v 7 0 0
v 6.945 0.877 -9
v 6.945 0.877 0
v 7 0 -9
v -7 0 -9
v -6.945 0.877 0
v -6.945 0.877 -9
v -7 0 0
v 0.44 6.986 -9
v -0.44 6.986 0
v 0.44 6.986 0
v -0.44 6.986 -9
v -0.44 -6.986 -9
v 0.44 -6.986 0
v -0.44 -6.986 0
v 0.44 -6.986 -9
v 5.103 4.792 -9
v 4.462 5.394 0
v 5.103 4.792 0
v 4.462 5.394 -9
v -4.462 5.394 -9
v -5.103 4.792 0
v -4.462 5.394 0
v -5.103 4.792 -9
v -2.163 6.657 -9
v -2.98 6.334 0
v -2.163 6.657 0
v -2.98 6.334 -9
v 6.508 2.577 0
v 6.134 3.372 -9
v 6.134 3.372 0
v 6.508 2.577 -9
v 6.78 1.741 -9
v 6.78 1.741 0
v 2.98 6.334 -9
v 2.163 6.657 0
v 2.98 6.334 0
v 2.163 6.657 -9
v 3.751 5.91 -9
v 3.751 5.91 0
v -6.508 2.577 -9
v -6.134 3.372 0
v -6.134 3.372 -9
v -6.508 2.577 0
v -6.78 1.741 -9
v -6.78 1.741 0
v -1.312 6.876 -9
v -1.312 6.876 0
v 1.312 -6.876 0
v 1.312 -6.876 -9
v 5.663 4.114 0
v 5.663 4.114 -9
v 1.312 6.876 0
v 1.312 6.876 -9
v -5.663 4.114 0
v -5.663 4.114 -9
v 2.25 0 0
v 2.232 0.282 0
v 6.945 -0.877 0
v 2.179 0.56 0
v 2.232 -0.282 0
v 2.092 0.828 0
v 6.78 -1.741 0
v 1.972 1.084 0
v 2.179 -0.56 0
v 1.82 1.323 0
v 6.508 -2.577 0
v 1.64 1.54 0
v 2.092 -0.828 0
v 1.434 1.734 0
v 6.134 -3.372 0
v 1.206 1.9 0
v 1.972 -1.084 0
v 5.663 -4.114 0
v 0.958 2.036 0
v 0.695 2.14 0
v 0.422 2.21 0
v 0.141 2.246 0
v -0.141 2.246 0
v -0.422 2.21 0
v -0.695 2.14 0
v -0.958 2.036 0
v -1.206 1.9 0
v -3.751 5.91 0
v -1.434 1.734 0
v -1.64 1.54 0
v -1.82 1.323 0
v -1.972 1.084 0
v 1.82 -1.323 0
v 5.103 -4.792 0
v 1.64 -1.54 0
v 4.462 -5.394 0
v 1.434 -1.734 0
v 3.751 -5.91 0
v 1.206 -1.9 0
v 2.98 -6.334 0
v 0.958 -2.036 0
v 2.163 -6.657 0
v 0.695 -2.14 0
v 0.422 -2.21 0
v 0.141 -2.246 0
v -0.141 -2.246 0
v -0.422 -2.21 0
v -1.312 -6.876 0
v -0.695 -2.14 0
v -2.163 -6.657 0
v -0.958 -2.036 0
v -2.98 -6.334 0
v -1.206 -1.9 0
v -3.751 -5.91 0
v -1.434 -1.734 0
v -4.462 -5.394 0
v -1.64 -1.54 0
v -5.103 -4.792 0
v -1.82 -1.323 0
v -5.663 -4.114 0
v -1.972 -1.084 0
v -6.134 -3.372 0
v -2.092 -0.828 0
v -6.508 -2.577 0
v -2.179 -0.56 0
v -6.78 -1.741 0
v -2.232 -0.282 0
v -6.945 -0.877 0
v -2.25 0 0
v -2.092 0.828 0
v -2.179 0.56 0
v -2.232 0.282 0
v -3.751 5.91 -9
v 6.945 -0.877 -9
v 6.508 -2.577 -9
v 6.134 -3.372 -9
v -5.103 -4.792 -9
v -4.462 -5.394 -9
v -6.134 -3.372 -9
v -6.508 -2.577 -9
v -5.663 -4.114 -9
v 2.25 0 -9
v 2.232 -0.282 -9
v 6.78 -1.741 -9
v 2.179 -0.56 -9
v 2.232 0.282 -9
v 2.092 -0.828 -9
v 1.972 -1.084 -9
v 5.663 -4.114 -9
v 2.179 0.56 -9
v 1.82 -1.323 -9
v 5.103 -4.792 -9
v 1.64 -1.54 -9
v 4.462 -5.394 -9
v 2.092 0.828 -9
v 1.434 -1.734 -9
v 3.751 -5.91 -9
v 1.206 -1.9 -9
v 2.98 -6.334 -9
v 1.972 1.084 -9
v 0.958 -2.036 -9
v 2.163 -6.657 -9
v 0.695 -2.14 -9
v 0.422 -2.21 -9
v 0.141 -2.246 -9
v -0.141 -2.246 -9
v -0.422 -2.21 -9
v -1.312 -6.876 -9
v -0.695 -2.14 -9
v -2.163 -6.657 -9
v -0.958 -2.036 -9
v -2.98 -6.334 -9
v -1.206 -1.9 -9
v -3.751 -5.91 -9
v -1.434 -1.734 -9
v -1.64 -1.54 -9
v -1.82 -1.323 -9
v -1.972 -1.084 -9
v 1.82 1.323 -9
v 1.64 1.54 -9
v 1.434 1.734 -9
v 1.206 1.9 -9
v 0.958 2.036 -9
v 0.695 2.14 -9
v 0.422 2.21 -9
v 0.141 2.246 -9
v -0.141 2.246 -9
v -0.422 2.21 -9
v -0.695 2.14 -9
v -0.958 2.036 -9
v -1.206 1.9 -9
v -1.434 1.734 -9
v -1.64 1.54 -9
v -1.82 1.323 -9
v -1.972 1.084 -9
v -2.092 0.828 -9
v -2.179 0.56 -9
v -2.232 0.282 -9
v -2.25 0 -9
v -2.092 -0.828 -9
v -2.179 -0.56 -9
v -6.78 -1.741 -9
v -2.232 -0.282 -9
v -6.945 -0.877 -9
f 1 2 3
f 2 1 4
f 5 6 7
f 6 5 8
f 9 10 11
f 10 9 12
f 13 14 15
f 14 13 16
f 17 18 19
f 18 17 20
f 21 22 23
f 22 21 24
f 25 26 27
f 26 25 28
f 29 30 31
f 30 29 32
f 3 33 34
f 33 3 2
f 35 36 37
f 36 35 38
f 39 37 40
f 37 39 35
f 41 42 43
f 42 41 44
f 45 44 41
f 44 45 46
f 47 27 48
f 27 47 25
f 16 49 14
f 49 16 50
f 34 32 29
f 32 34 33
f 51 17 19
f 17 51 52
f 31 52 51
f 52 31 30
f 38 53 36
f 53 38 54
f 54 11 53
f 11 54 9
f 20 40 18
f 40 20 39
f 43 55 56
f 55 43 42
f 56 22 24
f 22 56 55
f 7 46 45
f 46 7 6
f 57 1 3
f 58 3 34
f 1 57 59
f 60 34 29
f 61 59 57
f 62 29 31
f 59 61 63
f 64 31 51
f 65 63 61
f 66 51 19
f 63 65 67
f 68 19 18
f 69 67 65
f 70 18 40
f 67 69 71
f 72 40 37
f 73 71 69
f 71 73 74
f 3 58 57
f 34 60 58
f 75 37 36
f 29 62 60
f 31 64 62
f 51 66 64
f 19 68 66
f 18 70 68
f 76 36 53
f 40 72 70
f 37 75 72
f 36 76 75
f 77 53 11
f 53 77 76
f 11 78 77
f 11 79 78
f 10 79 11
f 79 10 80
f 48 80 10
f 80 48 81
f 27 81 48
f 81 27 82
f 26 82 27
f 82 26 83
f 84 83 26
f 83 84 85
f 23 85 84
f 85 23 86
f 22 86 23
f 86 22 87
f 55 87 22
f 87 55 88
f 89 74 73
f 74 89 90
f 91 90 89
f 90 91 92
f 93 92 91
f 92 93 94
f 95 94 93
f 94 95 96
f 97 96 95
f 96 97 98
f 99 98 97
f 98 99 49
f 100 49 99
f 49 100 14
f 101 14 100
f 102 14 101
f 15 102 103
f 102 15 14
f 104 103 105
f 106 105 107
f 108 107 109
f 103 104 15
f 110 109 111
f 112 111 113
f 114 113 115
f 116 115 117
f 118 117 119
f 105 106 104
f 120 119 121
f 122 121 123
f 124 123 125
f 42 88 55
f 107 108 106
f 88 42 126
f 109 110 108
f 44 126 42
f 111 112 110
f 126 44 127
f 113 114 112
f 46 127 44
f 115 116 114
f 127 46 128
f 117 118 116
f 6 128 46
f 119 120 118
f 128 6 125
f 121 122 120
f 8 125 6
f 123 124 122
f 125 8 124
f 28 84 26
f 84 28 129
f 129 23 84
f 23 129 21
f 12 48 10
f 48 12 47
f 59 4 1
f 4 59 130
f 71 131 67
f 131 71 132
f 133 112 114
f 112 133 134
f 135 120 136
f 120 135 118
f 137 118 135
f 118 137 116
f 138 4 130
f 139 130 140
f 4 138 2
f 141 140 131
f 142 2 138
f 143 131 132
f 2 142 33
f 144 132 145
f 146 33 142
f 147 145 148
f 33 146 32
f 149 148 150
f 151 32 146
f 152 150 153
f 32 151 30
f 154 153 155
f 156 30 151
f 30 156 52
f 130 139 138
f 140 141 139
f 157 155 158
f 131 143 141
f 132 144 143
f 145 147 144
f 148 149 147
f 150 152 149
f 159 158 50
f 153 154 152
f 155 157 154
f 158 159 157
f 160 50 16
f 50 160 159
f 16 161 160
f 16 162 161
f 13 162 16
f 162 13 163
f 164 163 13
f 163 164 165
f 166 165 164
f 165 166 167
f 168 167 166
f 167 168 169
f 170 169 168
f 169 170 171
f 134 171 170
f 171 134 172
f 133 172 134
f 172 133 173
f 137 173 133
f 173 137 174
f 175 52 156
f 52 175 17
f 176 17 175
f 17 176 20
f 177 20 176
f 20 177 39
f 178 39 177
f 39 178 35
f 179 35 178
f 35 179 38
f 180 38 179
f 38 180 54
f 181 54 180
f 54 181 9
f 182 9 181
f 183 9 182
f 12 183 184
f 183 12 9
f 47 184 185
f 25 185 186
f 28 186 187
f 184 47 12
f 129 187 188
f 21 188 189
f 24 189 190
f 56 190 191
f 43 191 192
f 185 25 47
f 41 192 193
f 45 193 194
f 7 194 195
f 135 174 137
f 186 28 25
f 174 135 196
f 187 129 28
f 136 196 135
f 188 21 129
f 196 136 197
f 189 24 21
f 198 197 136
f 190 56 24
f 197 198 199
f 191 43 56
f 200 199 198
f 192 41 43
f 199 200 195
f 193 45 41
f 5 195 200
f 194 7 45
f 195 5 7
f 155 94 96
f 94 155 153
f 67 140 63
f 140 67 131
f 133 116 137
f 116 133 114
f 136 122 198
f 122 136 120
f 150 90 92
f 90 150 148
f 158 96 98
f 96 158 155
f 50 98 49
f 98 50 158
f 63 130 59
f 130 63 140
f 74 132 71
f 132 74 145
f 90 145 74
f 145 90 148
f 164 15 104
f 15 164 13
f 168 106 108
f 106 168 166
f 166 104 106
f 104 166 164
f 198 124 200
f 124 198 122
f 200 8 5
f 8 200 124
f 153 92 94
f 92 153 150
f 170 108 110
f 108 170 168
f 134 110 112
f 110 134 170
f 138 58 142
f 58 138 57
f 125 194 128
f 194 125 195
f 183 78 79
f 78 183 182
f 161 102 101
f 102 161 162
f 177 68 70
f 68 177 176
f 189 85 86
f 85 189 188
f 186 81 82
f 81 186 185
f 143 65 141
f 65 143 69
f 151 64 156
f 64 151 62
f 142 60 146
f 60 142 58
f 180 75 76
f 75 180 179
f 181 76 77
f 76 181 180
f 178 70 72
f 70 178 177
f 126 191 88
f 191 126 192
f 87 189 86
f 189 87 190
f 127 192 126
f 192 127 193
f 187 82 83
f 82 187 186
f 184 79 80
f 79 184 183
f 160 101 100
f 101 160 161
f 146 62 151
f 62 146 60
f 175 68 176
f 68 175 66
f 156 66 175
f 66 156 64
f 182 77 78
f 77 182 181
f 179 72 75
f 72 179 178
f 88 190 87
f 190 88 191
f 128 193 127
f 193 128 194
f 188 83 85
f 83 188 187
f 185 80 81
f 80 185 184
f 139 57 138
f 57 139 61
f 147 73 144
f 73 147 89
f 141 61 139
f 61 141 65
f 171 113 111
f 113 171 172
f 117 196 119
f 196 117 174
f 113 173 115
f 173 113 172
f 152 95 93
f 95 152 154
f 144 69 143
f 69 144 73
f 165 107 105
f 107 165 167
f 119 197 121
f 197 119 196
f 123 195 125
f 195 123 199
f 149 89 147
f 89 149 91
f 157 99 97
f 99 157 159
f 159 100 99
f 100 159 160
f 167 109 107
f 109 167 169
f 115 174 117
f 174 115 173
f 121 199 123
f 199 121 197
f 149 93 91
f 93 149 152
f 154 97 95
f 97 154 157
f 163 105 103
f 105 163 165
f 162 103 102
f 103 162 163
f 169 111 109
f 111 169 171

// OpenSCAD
$fn = 50;


difference() {
	union() {
		translate(v = [0, 0, -9.0000000000]) {
			cylinder(h = 9, r = 7.0000000000);
		}
	}
	union() {
		#translate(v = [0, 0, -9]) {
			cylinder(h = 9, r = 2.2500000000);
		}
	}
}
